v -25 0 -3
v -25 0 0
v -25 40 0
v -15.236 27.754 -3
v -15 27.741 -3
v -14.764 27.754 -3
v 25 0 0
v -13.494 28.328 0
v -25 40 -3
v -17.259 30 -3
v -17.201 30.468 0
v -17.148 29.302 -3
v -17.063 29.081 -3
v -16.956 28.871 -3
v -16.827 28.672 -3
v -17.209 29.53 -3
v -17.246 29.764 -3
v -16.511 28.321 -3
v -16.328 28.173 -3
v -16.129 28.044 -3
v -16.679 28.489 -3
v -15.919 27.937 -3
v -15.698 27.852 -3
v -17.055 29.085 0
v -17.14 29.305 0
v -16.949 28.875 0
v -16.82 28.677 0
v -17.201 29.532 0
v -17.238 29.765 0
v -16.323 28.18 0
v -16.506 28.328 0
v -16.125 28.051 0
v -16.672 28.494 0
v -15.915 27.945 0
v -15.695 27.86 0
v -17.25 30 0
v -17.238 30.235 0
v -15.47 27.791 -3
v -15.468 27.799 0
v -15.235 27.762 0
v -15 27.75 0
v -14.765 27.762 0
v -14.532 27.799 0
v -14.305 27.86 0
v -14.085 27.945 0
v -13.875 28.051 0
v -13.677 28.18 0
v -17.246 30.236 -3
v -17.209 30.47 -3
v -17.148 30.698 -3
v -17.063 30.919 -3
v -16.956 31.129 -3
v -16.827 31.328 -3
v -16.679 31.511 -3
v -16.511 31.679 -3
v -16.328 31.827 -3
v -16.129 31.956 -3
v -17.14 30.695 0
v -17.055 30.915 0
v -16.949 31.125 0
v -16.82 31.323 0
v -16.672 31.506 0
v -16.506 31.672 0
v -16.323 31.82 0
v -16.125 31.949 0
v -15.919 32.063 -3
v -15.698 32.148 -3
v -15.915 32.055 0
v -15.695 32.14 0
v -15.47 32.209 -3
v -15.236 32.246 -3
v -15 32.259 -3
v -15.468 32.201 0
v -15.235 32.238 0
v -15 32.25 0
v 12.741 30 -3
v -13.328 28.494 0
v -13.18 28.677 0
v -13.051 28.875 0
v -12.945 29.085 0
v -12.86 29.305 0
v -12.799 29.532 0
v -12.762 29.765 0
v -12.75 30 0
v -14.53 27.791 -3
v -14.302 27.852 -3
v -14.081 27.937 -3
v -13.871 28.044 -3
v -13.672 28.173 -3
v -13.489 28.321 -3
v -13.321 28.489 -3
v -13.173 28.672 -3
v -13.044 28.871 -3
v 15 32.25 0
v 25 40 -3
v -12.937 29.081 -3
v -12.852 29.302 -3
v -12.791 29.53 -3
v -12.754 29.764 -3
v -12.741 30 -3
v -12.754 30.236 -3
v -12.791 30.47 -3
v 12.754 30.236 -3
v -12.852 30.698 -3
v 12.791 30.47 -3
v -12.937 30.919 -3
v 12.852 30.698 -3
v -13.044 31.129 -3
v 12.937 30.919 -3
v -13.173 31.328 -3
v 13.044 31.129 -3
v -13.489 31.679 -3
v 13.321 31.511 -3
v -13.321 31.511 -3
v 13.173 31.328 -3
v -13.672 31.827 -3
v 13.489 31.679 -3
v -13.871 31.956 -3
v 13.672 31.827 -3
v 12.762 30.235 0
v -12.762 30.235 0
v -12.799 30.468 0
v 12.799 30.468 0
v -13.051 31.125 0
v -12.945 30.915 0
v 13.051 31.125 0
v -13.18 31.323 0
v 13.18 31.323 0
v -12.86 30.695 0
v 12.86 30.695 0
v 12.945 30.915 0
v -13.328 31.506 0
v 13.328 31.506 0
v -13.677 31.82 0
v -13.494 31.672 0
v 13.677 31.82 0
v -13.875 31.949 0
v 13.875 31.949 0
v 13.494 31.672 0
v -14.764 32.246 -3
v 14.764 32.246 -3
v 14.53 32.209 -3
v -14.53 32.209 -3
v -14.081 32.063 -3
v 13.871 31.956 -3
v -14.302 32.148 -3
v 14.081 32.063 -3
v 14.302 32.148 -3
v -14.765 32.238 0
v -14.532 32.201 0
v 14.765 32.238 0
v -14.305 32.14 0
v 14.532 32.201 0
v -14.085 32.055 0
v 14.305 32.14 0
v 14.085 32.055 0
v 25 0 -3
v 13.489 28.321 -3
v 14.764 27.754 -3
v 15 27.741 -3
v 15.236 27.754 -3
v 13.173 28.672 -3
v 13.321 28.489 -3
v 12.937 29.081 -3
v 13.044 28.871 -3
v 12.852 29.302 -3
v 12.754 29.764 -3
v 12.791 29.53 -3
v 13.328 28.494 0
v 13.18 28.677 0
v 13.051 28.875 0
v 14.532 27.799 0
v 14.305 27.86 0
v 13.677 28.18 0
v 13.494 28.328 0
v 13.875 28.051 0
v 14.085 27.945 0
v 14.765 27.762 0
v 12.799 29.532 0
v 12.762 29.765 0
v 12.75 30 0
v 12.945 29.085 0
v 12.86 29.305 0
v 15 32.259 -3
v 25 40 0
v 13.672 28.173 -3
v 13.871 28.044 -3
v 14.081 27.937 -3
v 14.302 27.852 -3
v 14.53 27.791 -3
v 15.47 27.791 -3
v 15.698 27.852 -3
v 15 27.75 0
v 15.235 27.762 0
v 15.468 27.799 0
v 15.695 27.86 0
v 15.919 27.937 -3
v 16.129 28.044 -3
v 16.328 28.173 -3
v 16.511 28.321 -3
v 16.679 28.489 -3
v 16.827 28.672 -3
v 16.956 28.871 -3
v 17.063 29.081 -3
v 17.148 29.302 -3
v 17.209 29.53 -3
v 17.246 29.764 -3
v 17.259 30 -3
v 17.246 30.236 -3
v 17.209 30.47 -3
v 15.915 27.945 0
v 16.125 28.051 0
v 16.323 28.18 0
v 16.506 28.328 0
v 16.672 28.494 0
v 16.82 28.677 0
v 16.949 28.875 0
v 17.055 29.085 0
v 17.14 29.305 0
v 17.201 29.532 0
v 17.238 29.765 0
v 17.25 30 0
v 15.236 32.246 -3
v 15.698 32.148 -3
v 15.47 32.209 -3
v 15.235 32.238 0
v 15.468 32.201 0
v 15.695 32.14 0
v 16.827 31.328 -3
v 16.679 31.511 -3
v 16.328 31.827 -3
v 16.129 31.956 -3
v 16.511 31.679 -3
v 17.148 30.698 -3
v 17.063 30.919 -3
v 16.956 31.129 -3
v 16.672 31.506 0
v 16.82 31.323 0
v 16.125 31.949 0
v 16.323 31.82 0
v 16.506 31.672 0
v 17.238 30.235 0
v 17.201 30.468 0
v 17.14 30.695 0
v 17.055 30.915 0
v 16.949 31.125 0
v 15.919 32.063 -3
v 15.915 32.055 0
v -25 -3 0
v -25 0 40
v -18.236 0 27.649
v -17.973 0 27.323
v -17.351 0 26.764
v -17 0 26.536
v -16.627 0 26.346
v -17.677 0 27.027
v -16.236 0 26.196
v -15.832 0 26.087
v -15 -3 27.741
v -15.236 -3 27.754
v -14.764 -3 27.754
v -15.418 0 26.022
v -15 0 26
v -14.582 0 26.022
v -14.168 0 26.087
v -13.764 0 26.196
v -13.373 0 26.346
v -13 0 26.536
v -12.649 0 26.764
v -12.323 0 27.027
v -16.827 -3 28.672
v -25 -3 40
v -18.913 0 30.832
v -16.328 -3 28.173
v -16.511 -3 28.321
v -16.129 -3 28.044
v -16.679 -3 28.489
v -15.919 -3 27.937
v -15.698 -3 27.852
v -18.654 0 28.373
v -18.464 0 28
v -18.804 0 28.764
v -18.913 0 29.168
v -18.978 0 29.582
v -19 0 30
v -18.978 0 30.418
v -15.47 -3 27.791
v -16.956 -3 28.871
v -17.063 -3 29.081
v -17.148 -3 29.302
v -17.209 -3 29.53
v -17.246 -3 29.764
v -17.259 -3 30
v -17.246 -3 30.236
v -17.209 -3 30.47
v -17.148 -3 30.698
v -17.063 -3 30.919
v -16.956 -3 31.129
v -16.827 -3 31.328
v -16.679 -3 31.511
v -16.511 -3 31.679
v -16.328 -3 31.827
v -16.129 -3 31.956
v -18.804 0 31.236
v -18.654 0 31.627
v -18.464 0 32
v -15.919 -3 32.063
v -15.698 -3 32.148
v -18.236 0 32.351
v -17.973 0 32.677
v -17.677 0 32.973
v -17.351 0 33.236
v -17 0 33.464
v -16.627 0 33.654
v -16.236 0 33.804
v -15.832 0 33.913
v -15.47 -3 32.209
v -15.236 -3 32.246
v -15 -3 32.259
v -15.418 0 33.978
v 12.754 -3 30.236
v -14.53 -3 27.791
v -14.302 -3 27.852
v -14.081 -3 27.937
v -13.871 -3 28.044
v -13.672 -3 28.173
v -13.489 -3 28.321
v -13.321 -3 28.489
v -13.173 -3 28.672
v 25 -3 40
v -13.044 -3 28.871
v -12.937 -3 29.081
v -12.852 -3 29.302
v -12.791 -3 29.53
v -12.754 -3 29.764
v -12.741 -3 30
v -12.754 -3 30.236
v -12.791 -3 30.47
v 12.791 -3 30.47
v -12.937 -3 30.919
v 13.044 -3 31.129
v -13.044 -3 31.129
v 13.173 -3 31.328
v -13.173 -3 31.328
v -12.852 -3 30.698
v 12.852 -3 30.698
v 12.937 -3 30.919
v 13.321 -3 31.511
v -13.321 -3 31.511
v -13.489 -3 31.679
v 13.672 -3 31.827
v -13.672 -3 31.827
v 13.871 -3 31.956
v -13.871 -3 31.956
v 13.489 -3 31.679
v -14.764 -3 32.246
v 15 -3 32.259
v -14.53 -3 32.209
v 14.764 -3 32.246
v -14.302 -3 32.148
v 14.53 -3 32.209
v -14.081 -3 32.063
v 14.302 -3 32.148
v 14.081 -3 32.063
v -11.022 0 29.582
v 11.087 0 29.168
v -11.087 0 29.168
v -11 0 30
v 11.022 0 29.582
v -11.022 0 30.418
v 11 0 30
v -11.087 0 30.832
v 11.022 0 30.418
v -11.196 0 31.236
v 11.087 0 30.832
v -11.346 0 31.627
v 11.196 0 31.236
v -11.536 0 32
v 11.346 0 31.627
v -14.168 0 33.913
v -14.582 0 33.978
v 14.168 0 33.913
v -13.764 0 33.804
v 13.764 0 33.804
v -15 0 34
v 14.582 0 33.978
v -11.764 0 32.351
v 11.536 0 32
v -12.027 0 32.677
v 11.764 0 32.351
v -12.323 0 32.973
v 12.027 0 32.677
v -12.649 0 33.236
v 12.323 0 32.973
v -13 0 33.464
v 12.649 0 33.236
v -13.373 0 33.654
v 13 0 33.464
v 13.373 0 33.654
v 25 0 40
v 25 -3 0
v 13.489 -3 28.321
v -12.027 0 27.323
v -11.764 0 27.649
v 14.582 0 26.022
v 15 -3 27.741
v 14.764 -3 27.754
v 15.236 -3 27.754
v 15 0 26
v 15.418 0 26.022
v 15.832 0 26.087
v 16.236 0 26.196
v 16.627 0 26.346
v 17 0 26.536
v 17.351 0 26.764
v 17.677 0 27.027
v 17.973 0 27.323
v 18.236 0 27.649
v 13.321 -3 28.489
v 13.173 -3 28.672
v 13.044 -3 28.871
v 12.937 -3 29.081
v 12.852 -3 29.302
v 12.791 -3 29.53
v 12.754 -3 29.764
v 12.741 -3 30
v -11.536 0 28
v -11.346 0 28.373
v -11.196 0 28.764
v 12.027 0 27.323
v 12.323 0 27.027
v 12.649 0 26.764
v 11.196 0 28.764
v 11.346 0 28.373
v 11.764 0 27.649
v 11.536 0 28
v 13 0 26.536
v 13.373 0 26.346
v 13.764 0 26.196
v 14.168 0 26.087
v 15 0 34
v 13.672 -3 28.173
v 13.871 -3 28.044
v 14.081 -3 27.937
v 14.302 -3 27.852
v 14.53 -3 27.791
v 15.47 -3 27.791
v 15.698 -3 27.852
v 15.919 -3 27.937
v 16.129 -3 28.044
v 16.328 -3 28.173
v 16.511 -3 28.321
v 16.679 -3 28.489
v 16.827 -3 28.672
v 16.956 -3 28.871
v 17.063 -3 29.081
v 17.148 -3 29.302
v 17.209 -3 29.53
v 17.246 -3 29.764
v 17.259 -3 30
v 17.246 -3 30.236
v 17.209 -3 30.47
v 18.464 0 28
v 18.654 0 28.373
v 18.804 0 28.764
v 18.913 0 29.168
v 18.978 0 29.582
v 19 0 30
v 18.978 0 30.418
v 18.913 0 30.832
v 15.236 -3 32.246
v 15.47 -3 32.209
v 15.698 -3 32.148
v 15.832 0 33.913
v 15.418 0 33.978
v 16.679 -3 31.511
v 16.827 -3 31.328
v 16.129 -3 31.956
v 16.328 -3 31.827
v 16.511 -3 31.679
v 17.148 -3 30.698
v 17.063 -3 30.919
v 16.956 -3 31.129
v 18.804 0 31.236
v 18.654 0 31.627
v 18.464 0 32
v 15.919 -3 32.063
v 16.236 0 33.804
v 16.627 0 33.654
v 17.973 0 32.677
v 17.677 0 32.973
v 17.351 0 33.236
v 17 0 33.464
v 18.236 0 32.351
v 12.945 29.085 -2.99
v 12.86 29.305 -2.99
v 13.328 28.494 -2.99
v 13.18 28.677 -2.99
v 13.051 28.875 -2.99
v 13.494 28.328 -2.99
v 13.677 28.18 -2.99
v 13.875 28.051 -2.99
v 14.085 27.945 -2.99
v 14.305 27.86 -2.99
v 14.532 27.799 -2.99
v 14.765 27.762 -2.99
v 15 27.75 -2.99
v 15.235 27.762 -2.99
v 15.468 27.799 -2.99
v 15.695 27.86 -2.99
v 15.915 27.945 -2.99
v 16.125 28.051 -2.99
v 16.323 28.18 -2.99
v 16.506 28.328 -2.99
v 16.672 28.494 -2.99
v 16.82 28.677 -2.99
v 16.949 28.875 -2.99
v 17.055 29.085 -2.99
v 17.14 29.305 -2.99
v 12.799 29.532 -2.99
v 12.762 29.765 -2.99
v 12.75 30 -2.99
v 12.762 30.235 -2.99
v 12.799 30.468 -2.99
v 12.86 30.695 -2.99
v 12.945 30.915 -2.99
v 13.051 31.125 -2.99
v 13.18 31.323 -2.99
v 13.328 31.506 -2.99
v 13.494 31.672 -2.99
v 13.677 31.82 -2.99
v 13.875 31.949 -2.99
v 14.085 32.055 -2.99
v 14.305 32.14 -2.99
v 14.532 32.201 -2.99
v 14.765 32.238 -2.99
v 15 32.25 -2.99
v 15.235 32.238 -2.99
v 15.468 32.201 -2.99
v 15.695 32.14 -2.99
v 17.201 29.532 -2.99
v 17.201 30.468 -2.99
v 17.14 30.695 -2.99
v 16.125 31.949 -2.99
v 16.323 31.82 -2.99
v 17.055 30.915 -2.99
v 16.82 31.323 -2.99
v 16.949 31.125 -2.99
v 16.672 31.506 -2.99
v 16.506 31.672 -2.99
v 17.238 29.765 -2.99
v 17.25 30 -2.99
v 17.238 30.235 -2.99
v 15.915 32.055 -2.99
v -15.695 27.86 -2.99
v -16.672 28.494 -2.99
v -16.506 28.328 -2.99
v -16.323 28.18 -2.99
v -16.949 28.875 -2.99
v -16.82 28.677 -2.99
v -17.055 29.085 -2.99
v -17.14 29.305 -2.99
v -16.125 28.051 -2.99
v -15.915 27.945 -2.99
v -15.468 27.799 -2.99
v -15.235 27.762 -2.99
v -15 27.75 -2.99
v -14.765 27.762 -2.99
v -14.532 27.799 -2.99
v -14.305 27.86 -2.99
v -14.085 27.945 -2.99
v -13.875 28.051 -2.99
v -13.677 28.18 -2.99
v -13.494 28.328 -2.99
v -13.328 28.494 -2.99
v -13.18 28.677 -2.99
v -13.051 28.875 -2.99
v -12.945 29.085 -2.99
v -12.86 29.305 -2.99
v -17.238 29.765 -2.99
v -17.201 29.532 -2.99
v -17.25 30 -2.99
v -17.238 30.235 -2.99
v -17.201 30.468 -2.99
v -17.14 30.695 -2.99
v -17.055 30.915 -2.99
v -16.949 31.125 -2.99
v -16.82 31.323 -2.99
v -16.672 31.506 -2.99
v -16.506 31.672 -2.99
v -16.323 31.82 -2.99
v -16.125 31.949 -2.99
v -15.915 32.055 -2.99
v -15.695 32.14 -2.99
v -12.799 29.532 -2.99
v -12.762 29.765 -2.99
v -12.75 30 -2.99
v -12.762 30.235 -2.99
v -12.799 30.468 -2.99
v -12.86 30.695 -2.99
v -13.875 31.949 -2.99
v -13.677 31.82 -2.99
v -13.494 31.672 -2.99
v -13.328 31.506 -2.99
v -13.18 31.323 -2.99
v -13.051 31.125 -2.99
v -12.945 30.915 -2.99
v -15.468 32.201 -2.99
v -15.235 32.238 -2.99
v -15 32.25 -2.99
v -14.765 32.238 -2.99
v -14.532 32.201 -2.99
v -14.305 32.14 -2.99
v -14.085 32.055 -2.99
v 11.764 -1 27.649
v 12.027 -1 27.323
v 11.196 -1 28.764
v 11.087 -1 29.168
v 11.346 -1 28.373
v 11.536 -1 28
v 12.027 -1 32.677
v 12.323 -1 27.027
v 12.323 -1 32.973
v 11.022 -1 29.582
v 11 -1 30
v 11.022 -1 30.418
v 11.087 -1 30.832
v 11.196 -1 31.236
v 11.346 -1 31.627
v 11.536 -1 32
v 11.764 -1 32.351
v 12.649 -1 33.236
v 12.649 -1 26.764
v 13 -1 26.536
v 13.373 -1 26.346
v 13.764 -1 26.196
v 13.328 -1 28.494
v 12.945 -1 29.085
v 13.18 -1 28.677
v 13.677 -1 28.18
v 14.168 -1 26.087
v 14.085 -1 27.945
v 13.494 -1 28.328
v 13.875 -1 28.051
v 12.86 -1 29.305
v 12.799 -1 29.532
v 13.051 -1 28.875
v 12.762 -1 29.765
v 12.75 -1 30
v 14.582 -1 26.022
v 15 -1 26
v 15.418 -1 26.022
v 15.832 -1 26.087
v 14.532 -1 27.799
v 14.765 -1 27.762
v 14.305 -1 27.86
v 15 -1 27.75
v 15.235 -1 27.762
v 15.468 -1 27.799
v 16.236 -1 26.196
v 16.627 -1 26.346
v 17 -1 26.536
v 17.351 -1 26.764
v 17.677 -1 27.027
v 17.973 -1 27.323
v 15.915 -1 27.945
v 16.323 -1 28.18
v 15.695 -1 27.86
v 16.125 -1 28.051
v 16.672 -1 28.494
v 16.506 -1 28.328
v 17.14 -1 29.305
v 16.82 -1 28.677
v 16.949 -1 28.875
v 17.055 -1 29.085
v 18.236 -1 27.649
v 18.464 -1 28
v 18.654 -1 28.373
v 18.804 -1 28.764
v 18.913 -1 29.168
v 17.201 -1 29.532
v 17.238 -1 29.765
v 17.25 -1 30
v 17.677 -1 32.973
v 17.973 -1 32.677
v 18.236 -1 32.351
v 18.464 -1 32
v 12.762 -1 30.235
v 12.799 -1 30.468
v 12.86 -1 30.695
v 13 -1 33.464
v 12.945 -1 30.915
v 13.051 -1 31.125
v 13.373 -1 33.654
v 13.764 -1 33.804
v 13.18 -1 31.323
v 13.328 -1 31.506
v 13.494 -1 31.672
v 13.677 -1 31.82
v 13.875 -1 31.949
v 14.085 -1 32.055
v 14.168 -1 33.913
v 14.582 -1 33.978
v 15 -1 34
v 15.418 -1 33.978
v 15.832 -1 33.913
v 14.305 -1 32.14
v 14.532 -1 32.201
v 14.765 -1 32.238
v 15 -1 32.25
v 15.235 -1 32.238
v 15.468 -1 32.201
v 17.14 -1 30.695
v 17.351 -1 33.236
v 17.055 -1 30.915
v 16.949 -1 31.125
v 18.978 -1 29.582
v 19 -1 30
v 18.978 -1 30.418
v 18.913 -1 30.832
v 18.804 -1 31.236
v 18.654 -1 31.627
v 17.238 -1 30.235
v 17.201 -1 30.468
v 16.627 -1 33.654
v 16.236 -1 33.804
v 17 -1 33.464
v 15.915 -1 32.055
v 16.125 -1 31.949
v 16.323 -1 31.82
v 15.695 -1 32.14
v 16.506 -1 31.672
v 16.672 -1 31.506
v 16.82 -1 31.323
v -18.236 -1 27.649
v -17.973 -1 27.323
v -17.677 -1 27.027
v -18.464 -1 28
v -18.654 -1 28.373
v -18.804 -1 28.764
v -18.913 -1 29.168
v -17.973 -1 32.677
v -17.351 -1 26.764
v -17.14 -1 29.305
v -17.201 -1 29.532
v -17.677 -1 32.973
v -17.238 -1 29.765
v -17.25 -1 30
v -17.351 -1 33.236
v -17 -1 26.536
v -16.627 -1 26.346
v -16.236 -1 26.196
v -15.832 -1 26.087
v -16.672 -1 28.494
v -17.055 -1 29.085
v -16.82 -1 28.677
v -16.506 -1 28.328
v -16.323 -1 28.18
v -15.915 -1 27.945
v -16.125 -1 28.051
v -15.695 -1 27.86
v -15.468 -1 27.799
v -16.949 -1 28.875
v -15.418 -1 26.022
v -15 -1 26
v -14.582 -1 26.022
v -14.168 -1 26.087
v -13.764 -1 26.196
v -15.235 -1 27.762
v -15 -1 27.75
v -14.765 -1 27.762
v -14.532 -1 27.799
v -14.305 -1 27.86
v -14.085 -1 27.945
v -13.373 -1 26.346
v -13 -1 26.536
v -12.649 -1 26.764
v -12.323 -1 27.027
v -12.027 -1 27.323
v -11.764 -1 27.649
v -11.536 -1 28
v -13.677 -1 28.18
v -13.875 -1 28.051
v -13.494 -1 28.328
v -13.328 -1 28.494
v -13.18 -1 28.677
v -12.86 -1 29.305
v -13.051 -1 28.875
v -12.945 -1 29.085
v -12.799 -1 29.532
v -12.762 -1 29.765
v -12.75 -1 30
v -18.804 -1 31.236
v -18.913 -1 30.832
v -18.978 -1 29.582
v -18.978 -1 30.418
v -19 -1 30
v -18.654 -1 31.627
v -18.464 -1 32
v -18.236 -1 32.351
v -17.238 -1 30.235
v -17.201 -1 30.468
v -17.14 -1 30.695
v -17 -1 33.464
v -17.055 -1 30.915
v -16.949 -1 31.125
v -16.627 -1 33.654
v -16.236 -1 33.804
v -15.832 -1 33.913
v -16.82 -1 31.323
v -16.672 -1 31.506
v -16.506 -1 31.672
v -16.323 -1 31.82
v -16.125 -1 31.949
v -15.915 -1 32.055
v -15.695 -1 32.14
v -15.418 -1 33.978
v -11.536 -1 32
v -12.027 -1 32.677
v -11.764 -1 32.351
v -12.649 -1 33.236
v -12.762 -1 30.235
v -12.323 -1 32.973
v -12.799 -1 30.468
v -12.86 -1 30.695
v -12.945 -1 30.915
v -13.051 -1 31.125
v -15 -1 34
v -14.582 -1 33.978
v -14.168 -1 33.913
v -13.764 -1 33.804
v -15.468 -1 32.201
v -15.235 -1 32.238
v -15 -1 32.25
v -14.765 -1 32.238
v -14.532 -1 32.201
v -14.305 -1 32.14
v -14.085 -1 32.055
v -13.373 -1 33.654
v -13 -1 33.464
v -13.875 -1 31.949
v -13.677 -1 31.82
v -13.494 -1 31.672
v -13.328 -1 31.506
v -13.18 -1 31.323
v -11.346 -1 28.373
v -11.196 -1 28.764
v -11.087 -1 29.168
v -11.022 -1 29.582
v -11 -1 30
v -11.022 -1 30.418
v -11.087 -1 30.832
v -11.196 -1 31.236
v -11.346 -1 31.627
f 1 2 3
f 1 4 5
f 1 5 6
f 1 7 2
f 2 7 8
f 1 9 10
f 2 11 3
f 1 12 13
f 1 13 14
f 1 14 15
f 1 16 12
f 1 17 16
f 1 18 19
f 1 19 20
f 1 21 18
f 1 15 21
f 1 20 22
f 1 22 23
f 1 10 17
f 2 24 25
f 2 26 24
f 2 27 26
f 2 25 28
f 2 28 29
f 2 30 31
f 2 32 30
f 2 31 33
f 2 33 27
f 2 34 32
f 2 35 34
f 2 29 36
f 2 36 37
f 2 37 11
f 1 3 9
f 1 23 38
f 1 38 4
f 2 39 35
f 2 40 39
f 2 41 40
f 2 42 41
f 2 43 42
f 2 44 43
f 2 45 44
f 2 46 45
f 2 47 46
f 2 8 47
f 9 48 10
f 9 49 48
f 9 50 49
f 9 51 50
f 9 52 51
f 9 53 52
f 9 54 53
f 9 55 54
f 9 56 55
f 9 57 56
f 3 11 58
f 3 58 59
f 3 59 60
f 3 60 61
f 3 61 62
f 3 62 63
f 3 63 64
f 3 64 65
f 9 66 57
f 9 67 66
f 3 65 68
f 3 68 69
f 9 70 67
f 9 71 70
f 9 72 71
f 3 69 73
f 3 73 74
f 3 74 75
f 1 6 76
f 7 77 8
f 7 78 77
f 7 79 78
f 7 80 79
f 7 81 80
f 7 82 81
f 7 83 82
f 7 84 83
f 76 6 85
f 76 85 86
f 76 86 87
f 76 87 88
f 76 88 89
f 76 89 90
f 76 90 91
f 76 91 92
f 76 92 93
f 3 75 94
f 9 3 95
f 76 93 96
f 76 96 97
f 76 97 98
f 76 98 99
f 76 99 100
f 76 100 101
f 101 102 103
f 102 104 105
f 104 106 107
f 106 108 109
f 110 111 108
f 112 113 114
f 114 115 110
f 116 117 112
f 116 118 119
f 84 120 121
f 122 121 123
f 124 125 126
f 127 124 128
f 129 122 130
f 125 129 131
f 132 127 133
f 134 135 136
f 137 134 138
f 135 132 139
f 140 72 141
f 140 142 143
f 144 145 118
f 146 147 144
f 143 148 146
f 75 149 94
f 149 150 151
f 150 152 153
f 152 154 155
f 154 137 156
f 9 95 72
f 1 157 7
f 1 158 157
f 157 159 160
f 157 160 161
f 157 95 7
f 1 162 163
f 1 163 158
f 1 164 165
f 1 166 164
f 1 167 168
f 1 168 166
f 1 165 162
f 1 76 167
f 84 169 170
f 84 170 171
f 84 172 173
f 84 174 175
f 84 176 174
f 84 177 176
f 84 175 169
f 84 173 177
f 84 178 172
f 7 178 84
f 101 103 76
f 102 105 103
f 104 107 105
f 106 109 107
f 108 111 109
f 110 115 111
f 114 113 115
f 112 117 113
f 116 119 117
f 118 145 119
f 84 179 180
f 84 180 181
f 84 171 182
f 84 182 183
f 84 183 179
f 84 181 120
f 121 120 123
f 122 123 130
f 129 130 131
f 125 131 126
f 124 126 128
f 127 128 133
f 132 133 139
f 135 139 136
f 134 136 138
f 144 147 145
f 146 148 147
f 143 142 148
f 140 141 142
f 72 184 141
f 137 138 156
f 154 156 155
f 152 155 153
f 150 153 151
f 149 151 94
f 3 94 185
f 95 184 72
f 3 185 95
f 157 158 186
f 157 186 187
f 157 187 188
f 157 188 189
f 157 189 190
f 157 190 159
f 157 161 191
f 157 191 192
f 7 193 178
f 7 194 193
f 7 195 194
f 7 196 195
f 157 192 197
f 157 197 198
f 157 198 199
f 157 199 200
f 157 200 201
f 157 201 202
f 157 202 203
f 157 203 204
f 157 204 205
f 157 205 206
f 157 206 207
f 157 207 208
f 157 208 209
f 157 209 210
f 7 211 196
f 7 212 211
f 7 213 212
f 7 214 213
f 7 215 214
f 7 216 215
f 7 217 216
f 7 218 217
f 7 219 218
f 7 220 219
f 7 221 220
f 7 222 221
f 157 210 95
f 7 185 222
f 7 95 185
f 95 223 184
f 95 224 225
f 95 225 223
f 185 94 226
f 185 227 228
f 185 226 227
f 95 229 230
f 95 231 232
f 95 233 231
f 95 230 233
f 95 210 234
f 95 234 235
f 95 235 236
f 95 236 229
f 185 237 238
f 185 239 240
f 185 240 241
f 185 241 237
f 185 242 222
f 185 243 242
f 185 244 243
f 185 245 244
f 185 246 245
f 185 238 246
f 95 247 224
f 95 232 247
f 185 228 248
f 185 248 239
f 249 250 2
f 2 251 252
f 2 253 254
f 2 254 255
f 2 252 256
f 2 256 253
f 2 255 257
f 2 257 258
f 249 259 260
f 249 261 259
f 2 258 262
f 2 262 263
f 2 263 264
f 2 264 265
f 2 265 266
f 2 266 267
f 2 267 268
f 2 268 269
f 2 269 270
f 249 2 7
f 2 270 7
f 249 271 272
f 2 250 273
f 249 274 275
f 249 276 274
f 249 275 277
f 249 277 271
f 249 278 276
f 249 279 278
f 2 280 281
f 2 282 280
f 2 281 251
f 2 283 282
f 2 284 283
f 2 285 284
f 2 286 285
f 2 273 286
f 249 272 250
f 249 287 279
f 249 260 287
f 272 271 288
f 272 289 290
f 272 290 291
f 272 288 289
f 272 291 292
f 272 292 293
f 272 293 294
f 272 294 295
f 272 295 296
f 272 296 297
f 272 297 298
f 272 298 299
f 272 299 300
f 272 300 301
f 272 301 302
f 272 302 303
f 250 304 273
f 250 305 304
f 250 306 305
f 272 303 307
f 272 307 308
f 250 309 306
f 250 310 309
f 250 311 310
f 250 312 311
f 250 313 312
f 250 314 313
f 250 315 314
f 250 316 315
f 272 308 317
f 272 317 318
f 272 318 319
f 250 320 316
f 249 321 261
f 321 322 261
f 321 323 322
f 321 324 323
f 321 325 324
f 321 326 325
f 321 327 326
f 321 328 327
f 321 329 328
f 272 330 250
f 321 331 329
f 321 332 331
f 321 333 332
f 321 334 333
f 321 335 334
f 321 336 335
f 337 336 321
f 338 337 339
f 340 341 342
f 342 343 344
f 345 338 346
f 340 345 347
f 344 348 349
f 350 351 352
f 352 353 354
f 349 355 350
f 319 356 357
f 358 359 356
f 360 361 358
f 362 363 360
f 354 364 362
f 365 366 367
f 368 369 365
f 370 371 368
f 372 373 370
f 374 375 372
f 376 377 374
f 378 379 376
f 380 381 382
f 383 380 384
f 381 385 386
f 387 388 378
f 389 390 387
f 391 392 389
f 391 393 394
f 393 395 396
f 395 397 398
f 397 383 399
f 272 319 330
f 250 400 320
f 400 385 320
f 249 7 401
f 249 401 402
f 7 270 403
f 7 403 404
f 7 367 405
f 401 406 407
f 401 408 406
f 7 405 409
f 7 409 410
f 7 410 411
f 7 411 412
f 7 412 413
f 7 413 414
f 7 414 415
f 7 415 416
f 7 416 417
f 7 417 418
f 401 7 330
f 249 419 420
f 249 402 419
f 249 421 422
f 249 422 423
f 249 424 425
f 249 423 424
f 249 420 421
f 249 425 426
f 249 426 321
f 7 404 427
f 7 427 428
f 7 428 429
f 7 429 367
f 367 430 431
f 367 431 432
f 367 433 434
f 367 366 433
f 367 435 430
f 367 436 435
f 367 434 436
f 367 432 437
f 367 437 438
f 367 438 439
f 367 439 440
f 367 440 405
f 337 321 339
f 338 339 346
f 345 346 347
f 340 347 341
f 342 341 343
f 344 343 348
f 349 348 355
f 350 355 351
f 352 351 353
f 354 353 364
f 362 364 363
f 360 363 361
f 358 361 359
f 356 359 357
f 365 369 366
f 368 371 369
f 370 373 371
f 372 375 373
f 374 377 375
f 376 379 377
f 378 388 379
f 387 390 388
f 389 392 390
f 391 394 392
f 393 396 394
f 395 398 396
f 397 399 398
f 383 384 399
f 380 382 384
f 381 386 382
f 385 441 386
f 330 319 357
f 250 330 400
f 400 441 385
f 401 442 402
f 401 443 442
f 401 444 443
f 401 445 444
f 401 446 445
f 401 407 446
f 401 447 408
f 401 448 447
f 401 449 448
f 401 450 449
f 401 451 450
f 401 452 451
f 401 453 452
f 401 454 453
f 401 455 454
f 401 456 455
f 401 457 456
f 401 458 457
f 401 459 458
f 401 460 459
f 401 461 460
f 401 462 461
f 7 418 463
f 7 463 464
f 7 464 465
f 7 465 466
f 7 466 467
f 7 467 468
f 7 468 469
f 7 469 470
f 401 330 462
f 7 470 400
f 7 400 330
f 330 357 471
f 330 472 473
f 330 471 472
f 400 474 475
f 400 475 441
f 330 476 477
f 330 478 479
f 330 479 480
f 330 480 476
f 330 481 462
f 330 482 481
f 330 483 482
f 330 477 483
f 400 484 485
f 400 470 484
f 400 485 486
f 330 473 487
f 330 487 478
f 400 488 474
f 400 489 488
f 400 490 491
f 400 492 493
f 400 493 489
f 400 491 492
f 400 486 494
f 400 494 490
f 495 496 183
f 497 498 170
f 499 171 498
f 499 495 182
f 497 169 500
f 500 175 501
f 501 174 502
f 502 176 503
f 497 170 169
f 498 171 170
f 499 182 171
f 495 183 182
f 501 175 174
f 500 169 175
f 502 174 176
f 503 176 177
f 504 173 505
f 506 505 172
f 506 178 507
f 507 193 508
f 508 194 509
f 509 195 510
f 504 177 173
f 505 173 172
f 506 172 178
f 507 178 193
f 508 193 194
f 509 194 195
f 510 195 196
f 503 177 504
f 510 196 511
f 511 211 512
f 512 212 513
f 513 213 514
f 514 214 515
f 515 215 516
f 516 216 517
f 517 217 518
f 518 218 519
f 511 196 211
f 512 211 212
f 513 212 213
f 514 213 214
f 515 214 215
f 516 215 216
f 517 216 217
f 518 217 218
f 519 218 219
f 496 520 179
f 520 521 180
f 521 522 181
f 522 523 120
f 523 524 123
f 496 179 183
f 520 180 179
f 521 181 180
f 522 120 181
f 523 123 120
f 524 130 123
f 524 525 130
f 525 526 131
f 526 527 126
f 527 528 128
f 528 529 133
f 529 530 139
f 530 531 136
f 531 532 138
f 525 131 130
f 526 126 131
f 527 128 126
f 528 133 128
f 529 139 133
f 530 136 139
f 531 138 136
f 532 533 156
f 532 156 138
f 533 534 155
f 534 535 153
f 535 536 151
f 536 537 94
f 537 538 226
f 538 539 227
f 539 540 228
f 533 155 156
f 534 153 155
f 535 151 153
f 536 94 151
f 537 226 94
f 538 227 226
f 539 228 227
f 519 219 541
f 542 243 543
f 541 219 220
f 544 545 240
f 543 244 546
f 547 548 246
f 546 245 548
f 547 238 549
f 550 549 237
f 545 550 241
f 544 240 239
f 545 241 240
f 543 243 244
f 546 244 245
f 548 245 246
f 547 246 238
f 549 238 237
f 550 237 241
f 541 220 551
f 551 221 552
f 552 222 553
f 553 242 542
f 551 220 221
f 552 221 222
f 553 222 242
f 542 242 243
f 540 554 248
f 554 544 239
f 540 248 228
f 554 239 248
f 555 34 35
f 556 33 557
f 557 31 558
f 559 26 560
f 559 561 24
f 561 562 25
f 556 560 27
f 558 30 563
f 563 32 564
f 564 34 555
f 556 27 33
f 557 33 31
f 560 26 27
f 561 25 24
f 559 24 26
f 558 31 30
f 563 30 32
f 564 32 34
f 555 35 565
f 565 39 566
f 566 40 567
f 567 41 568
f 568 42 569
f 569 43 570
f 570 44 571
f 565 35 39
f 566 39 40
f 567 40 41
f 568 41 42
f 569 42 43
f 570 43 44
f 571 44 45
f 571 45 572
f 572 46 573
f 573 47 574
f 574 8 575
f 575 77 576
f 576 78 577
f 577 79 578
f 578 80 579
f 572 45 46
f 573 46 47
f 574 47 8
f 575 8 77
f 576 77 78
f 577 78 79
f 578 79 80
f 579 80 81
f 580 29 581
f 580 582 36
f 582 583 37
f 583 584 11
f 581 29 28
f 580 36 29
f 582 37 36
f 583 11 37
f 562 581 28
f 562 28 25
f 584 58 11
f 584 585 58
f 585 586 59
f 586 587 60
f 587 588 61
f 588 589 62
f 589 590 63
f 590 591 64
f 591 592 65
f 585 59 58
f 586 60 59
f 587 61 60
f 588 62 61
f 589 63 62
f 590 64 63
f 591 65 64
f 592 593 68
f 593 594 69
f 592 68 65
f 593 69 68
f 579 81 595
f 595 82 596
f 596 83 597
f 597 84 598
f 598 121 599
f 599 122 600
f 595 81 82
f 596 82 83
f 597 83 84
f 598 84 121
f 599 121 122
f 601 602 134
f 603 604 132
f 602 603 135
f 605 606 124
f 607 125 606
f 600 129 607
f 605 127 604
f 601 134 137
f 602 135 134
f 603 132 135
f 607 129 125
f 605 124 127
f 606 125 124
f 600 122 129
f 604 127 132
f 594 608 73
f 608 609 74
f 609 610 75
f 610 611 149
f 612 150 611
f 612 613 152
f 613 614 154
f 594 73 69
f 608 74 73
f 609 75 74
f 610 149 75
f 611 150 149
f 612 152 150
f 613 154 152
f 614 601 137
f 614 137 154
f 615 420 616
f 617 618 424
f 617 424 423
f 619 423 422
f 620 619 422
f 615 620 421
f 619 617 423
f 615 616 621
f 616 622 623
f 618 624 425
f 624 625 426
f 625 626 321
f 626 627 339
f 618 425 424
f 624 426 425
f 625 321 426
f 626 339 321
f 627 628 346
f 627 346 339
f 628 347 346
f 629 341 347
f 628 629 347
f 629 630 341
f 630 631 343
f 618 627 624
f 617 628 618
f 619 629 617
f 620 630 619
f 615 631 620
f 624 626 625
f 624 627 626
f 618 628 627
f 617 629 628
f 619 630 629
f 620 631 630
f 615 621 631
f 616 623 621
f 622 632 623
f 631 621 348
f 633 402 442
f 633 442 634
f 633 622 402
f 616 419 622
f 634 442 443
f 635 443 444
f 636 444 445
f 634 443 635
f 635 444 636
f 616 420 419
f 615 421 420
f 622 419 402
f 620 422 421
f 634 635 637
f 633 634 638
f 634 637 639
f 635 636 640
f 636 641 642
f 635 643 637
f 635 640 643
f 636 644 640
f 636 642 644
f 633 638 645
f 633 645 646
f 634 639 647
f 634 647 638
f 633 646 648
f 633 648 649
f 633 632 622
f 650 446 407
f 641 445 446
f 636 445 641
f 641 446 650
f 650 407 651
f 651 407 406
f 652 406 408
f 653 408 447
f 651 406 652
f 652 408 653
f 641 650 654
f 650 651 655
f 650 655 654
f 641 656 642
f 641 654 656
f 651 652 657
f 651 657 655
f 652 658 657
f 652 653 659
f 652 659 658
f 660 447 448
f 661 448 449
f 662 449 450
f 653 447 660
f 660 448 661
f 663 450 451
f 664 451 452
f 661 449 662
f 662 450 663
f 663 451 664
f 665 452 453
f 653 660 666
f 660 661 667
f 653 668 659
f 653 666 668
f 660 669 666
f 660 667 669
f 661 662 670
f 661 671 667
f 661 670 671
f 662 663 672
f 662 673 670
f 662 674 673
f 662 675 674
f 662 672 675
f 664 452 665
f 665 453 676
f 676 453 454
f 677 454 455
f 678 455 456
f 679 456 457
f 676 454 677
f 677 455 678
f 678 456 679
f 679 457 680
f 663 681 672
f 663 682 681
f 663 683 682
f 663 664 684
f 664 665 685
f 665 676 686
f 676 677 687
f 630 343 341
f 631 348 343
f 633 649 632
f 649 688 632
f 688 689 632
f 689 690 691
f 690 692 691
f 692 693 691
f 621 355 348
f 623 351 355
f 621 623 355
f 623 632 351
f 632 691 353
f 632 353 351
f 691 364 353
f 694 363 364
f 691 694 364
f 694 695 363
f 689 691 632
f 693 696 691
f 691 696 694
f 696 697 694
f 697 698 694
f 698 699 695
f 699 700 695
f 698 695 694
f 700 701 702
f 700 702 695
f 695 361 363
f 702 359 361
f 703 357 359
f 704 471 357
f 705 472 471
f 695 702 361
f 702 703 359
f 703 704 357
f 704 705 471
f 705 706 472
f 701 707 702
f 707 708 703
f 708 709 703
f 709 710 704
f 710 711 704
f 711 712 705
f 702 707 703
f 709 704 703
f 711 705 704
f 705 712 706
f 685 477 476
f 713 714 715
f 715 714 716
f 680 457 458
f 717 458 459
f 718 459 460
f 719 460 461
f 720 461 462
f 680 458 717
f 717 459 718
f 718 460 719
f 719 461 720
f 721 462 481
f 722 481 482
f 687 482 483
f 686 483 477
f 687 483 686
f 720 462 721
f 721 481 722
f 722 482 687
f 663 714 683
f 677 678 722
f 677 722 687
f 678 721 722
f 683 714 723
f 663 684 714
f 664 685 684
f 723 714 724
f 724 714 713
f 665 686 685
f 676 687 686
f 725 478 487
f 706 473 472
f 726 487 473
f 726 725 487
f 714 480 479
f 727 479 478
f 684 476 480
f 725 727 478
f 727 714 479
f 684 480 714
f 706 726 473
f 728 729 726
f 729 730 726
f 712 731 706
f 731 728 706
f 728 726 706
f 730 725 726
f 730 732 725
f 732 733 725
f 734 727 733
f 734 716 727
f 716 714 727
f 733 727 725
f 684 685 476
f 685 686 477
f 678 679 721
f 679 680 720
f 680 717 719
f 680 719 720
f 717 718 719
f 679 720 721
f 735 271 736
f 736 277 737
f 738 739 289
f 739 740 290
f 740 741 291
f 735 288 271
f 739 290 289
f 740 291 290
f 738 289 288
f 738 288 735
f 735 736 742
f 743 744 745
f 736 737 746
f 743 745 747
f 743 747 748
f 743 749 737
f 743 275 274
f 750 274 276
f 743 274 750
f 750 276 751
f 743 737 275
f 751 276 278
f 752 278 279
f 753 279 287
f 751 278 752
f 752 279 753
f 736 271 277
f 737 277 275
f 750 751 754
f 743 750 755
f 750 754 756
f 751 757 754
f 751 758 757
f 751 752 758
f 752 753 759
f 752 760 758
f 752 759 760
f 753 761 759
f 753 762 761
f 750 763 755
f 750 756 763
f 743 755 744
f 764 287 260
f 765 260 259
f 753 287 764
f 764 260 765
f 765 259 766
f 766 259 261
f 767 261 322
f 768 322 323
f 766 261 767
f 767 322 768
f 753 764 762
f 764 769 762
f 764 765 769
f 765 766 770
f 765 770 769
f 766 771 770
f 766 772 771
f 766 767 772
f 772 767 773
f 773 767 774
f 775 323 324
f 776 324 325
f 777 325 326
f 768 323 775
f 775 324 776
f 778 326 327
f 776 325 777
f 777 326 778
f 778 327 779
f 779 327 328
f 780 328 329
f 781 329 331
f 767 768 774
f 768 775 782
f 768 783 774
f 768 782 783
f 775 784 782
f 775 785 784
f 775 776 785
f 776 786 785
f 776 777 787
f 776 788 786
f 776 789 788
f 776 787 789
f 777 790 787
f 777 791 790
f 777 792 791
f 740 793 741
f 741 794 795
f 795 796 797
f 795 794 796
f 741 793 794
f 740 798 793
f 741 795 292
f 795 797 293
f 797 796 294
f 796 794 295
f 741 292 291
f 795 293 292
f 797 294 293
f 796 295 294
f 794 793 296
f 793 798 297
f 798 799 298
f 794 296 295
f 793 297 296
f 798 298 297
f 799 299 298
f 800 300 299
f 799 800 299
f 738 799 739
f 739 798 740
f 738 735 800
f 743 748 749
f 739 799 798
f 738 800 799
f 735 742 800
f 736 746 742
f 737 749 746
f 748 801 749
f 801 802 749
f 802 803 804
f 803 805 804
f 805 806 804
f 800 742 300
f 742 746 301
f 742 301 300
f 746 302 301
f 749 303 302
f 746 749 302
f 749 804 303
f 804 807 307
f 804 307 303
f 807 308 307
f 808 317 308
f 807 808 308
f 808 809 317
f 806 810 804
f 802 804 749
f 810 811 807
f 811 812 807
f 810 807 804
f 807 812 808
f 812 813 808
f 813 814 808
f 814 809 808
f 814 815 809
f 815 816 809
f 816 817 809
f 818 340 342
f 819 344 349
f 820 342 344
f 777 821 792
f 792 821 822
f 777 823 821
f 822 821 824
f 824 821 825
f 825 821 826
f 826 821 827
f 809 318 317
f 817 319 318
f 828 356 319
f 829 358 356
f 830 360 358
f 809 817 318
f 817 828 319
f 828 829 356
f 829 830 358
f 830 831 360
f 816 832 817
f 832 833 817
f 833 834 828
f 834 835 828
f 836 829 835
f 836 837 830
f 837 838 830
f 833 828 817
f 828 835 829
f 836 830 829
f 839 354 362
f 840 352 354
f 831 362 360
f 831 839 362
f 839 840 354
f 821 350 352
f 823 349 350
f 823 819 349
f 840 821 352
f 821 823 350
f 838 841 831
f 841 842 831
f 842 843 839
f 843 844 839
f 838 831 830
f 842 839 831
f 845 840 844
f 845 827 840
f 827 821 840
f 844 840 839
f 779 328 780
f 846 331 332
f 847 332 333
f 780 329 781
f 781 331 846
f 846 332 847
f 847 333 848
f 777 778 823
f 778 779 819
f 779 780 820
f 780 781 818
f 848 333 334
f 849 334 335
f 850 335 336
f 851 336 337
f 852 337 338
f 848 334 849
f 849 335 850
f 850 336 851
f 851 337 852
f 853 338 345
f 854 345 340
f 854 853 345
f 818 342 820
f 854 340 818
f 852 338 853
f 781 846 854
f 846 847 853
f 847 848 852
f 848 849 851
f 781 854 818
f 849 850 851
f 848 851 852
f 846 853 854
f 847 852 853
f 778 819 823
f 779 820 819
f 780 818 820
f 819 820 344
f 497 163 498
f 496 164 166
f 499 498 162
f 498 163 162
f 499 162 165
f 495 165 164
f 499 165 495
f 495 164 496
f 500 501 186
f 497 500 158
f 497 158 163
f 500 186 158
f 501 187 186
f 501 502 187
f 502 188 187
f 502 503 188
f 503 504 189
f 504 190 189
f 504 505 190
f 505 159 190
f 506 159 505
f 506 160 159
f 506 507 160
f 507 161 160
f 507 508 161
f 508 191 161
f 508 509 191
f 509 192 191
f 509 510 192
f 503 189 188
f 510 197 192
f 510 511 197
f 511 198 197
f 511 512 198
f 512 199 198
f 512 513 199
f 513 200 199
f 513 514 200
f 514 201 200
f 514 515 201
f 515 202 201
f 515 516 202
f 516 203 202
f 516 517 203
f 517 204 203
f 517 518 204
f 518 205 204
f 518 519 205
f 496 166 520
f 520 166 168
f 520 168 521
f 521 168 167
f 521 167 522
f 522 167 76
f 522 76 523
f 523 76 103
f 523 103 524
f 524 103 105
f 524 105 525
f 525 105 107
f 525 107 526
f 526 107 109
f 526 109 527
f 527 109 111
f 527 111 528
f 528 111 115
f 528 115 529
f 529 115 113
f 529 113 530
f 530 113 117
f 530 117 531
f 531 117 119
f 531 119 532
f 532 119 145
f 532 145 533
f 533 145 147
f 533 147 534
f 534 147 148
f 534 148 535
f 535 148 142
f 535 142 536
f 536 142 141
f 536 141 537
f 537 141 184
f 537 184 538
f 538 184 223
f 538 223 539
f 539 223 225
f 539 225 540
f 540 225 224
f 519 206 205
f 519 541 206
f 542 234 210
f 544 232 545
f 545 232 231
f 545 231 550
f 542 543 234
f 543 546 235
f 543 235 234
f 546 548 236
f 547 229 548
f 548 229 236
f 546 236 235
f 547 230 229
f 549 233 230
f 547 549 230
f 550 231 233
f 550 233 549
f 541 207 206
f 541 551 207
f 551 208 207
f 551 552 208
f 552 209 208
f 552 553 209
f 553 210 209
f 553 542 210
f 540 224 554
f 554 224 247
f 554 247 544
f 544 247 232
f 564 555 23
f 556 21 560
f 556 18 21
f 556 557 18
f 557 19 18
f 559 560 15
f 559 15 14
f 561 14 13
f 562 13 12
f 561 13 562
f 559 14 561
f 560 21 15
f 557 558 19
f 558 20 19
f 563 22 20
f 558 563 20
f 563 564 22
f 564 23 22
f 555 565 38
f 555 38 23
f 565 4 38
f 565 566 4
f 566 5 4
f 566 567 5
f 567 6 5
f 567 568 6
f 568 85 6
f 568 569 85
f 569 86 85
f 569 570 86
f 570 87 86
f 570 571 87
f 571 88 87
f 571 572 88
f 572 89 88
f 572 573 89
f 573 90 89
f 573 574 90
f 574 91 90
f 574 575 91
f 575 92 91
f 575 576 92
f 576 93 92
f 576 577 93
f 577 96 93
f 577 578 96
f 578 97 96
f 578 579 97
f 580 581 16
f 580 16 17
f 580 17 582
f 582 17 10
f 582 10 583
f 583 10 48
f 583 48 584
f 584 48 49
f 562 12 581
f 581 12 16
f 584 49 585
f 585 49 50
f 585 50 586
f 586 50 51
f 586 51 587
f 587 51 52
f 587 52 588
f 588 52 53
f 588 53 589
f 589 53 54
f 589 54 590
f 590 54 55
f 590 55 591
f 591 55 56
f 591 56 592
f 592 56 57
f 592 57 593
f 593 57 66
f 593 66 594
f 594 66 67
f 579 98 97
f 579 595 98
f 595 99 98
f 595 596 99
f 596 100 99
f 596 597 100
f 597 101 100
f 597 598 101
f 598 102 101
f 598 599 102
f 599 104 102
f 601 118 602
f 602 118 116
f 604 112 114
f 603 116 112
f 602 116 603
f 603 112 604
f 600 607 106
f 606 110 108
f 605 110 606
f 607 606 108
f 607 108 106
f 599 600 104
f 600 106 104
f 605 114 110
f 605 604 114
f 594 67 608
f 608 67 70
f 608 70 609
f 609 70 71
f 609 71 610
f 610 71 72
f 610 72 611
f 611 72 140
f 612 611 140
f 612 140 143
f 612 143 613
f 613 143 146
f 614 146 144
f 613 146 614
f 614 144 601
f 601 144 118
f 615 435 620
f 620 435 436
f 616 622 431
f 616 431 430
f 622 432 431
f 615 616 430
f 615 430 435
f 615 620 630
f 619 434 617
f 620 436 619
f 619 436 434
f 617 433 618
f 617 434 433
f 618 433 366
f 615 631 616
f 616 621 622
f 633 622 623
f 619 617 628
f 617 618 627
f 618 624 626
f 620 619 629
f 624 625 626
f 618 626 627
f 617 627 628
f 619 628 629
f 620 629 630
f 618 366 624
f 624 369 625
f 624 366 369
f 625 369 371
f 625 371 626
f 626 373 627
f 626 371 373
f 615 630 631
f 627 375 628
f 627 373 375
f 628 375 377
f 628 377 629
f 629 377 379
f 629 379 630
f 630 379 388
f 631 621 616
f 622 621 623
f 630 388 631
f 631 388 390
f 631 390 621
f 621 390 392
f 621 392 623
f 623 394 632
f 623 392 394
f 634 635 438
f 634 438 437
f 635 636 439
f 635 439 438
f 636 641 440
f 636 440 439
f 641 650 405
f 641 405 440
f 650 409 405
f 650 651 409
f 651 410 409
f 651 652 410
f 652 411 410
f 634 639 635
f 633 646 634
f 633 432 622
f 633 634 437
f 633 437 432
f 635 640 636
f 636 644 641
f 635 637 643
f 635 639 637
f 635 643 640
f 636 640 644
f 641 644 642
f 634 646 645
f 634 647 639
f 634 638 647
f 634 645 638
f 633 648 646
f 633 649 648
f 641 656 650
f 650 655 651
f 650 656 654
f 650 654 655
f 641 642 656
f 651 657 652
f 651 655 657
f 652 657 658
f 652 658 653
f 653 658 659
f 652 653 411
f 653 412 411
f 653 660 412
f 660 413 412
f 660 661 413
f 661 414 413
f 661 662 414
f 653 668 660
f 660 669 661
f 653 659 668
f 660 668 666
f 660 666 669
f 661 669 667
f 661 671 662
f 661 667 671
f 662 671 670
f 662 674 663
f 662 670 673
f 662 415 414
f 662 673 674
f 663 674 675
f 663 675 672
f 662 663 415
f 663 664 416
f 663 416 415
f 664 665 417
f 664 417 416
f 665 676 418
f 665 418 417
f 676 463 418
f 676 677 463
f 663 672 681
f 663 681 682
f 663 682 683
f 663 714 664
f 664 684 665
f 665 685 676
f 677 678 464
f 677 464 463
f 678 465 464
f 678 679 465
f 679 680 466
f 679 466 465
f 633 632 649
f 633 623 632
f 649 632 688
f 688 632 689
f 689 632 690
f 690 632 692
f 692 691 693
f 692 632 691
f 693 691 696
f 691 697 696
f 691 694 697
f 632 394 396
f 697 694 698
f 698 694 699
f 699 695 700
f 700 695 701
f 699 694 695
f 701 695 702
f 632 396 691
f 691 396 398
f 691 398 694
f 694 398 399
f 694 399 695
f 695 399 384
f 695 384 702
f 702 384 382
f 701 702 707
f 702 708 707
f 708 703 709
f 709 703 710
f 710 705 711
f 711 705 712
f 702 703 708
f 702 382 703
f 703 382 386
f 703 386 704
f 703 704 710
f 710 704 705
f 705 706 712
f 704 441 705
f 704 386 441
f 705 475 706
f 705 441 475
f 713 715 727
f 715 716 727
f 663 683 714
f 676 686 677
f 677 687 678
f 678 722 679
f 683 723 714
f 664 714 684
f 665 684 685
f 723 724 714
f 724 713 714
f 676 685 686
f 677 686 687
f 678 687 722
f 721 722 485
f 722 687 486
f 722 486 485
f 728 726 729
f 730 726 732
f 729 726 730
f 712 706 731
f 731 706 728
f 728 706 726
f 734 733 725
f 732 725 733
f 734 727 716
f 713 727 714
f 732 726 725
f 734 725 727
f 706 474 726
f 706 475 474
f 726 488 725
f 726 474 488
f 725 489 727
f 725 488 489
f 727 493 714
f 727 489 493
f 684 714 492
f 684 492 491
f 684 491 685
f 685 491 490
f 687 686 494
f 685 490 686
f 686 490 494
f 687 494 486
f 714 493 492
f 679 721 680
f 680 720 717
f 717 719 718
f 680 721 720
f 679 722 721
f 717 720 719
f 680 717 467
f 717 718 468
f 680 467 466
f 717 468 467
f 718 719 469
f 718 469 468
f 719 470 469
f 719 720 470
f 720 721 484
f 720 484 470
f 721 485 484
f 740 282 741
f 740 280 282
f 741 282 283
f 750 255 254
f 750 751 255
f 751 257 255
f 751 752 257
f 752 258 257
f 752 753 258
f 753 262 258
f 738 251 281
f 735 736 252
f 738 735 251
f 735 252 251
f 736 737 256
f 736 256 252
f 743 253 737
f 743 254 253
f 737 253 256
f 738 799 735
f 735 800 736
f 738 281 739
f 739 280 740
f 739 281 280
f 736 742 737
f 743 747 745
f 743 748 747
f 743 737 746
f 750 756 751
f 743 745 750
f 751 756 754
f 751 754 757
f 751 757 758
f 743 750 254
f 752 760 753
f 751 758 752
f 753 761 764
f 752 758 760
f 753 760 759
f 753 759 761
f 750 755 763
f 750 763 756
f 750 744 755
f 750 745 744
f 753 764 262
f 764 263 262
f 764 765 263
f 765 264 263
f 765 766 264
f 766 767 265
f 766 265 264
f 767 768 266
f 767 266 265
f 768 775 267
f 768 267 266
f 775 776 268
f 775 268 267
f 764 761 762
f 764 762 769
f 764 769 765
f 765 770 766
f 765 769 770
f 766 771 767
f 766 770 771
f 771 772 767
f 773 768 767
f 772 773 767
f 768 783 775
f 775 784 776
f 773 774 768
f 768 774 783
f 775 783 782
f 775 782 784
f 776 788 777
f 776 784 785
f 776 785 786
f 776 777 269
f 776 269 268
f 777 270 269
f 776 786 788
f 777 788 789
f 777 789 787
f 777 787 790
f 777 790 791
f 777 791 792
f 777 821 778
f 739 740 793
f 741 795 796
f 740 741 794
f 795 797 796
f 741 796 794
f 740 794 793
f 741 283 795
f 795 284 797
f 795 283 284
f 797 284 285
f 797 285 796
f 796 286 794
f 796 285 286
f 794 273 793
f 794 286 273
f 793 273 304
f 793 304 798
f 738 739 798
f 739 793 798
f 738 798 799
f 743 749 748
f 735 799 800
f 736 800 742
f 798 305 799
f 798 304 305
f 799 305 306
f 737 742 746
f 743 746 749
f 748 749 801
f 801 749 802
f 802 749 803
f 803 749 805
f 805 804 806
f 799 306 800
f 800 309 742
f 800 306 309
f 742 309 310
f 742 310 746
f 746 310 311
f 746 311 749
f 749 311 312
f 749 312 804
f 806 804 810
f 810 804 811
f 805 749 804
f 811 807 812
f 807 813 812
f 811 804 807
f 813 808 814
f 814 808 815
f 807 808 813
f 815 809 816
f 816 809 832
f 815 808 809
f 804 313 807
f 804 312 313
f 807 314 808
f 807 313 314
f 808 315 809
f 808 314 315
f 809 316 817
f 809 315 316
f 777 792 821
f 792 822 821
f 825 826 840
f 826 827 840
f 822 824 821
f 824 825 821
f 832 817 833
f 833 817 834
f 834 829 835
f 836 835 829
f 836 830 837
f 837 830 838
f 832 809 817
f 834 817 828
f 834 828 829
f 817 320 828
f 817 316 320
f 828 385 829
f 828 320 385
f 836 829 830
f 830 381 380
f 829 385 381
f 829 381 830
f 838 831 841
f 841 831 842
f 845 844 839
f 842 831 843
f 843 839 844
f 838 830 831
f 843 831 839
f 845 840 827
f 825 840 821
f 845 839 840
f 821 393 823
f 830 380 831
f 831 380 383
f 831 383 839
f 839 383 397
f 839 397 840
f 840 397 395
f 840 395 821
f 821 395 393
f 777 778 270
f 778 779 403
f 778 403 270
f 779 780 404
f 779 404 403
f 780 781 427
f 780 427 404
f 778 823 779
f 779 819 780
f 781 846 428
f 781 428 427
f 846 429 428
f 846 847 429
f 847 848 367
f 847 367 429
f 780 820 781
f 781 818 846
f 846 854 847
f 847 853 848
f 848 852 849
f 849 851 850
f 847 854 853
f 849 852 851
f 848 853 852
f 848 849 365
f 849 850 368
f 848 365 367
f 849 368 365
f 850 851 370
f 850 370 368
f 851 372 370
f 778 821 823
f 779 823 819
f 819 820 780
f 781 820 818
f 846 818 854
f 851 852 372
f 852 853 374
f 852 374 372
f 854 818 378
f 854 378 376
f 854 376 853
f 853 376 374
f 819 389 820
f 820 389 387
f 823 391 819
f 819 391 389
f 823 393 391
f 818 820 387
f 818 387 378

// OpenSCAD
// L-bracket parameters
width = 50;       // Width of the bracket (X direction)
depth = 40;       // Depth of the horizontal flange (Y direction)
height = 40;      // Height of the vertical flange (Z direction)
thickness = 3;   // Thickness of the bracket

// Screw hole parameters (M4 countersunk)
d_hole = 4.5;     // Through hole diameter
d_sink = 8.0;     // Countersink maximum diameter
h_sink = 2.0;     // Countersink depth
hole_offset = 10; // Distance from the edge

$fn = 60;         // Smoothness of circles

module countersunk_hole() {
    // Generates a countersunk hole along the Z-axis
    // The head of the screw is on the Z+ side, pointing downwards (Z-)
    union() {
        // Through hole (extended to ensure clean cut)
        translate([0, 0, -20])
            cylinder(d = d_hole, h = 40);
        
        // Countersink cone
        translate([0, 0, -0.01])
            cylinder(d1 = d_hole, d2 = d_sink, h = h_sink + 0.01);
        
        // Excess upper cylinder for clean subtraction
        translate([0, 0, h_sink])
            cylinder(d = d_sink, h = 10);
    }
}

difference() {
    // 1. Bracket Base Shape (with inner corner at origin [0,0,0])
    union() {
        // Horizontal flange (Y+ direction)
        // Outside is at Z = -thickness
        translate([-width/2, 0, -thickness])
            cube([width, depth, thickness]);
        
        // Vertical flange (Z+ direction)
        // Outside is at Y = -thickness
        translate([-width/2, -thickness, 0])
            cube([width, thickness, height]);
    }

    // 2. Holes on the Horizontal Flange
    // Outside surface is at Z = -thickness. Screw enters from Z- (outside) towards Z+ (inside).
    // We rotate the hole 180 degrees around X-axis so the head is on the Z- side.
    translate([-(width/2 - hole_offset), depth - hole_offset, -thickness])
        rotate([180, 0, 0])
            countersunk_hole();

    translate([width/2 - hole_offset, depth - hole_offset, -thickness])
        rotate([180, 0, 0])
            countersunk_hole();

    // 3. Holes on the Vertical Flange
    // Outside surface is at Y = -thickness. Screw enters from Y- (outside) towards Y+ (inside).
    // We rotate the hole -90 degrees around X-axis so the head is on the Y- side.
    translate([-(width/2 - hole_offset), -thickness, height - hole_offset])
        rotate([-90, 0, 0])
            countersunk_hole();

    translate([width/2 - hole_offset, -thickness, height - hole_offset])
        rotate([-90, 0, 0])
            countersunk_hole();
}
